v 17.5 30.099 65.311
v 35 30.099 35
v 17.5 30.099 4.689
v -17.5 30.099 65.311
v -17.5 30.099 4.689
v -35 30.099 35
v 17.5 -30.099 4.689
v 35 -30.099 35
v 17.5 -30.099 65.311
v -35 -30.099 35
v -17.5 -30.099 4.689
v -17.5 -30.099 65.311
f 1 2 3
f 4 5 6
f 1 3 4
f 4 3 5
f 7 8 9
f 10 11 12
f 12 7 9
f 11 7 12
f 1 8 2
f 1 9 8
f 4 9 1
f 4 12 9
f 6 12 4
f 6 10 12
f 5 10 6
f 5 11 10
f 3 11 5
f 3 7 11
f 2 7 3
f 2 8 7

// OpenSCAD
/* doodle-meta {"version":1,"parameters":{"hex_width":{"label":"Hexagon Width","description":"Distance between opposite flat sides of the hexagonal cross-section","unit":"mm","feature":"hex_profile"},"prism_depth":{"label":"Prism Depth","description":"Length of the hexagonal prism along the Y axis","unit":"mm","feature":"prism_depth"}},"features":{"hex_profile":{"kind":"dimension","axis":"x","label":"Hexagon Width"},"prism_depth":{"kind":"dimension","axis":"y","label":"Prism Depth"}}} */

// User-editable parameters
hex_width = 60.62180652983459;
prism_depth = 60.19745388412576;

// Derived parameters
// For a regular hexagon with flat-to-flat distance 'hex_width', the circumradius (center to vertex) is:
// R = hex_width / sqrt(3)
hex_circumradius = hex_width / sqrt(3);

// The height of the hexagon (vertex-to-vertex) is 2 * R
hex_height = 2 * hex_circumradius;

// Module to create a regular hexagon centered at origin in XY plane
// r is the circumradius (center to vertex)
module regular_hexagon(r) {
    polygon(
        points = [
            [r, 0],
            [r * cos(60), r * sin(60)],
            [r * cos(120), r * sin(120)],
            [r * cos(180), r * sin(180)],
            [r * cos(240), r * sin(240)],
            [r * cos(300), r * sin(300)]
        ]
    );
}

// Main design
// The hexagon is defined in the XZ plane (front view) and extruded along Y.
// To achieve this with standard OpenSCAD primitives:
// 1. Create the hexagon in the XY plane (standard polygon orientation).
// 2. Rotate it so it lies in the XZ plane (rotate around X by 90 degrees).
// 3. Extrude it along the Y axis.

// Step 1 & 2: Create hexagon in XZ plane
// The polygon is created in XY. Rotating 90 deg around X maps Y->Z and Z->-Y.
// So the polygon lies in the XZ plane.
// We need to center it vertically. The hexagon has height 'hex_height'.
// The polygon is centered at (0,0) in its local XY. After rotation, it is centered at (0,0,0) in XZ.
// We want the bottom of the part to be at Z=0.
// The hexagon vertices range from -R to +R in the local Y (which becomes Z).
// So we need to shift it up by R (hex_circumradius) to sit on the build plate.

translate([0, 0, hex_circumradius]) {
    rotate([90, 0, 0]) {
        // Extrude along the local Z axis (which is now global Y after rotation? No.)
        // Let's trace axes carefully.
        // Polygon is in XY.
        // rotate([90,0,0]) maps:
        //   Local X -> Global X
        //   Local Y -> Global Z
        //   Local Z -> Global -Y
        // So the polygon lies in the Global XZ plane.
        // linear_extrude extrudes along the local Z axis of the object being extruded.
        // The object being extruded is the rotated polygon. Its local Z is Global -Y.
        // So linear_extrude(height=prism_depth) will extrude along Global -Y.
        // We want it centered or starting from Y=0?
        // The prompt says "sit on the build plate: lowest geometry at Z=0".
        // It doesn't specify Y centering, but usually handles are centered or start at 0.
        // Let's center it in Y for symmetry, or start at 0.
        // "front geometry lies in XZ... cuts along Y".
        // Let's center the prism in Y for a balanced handle.
        
        linear_extrude(height = prism_depth, center = true) {
            regular_hexagon(hex_circumradius);
        }
    }
}
